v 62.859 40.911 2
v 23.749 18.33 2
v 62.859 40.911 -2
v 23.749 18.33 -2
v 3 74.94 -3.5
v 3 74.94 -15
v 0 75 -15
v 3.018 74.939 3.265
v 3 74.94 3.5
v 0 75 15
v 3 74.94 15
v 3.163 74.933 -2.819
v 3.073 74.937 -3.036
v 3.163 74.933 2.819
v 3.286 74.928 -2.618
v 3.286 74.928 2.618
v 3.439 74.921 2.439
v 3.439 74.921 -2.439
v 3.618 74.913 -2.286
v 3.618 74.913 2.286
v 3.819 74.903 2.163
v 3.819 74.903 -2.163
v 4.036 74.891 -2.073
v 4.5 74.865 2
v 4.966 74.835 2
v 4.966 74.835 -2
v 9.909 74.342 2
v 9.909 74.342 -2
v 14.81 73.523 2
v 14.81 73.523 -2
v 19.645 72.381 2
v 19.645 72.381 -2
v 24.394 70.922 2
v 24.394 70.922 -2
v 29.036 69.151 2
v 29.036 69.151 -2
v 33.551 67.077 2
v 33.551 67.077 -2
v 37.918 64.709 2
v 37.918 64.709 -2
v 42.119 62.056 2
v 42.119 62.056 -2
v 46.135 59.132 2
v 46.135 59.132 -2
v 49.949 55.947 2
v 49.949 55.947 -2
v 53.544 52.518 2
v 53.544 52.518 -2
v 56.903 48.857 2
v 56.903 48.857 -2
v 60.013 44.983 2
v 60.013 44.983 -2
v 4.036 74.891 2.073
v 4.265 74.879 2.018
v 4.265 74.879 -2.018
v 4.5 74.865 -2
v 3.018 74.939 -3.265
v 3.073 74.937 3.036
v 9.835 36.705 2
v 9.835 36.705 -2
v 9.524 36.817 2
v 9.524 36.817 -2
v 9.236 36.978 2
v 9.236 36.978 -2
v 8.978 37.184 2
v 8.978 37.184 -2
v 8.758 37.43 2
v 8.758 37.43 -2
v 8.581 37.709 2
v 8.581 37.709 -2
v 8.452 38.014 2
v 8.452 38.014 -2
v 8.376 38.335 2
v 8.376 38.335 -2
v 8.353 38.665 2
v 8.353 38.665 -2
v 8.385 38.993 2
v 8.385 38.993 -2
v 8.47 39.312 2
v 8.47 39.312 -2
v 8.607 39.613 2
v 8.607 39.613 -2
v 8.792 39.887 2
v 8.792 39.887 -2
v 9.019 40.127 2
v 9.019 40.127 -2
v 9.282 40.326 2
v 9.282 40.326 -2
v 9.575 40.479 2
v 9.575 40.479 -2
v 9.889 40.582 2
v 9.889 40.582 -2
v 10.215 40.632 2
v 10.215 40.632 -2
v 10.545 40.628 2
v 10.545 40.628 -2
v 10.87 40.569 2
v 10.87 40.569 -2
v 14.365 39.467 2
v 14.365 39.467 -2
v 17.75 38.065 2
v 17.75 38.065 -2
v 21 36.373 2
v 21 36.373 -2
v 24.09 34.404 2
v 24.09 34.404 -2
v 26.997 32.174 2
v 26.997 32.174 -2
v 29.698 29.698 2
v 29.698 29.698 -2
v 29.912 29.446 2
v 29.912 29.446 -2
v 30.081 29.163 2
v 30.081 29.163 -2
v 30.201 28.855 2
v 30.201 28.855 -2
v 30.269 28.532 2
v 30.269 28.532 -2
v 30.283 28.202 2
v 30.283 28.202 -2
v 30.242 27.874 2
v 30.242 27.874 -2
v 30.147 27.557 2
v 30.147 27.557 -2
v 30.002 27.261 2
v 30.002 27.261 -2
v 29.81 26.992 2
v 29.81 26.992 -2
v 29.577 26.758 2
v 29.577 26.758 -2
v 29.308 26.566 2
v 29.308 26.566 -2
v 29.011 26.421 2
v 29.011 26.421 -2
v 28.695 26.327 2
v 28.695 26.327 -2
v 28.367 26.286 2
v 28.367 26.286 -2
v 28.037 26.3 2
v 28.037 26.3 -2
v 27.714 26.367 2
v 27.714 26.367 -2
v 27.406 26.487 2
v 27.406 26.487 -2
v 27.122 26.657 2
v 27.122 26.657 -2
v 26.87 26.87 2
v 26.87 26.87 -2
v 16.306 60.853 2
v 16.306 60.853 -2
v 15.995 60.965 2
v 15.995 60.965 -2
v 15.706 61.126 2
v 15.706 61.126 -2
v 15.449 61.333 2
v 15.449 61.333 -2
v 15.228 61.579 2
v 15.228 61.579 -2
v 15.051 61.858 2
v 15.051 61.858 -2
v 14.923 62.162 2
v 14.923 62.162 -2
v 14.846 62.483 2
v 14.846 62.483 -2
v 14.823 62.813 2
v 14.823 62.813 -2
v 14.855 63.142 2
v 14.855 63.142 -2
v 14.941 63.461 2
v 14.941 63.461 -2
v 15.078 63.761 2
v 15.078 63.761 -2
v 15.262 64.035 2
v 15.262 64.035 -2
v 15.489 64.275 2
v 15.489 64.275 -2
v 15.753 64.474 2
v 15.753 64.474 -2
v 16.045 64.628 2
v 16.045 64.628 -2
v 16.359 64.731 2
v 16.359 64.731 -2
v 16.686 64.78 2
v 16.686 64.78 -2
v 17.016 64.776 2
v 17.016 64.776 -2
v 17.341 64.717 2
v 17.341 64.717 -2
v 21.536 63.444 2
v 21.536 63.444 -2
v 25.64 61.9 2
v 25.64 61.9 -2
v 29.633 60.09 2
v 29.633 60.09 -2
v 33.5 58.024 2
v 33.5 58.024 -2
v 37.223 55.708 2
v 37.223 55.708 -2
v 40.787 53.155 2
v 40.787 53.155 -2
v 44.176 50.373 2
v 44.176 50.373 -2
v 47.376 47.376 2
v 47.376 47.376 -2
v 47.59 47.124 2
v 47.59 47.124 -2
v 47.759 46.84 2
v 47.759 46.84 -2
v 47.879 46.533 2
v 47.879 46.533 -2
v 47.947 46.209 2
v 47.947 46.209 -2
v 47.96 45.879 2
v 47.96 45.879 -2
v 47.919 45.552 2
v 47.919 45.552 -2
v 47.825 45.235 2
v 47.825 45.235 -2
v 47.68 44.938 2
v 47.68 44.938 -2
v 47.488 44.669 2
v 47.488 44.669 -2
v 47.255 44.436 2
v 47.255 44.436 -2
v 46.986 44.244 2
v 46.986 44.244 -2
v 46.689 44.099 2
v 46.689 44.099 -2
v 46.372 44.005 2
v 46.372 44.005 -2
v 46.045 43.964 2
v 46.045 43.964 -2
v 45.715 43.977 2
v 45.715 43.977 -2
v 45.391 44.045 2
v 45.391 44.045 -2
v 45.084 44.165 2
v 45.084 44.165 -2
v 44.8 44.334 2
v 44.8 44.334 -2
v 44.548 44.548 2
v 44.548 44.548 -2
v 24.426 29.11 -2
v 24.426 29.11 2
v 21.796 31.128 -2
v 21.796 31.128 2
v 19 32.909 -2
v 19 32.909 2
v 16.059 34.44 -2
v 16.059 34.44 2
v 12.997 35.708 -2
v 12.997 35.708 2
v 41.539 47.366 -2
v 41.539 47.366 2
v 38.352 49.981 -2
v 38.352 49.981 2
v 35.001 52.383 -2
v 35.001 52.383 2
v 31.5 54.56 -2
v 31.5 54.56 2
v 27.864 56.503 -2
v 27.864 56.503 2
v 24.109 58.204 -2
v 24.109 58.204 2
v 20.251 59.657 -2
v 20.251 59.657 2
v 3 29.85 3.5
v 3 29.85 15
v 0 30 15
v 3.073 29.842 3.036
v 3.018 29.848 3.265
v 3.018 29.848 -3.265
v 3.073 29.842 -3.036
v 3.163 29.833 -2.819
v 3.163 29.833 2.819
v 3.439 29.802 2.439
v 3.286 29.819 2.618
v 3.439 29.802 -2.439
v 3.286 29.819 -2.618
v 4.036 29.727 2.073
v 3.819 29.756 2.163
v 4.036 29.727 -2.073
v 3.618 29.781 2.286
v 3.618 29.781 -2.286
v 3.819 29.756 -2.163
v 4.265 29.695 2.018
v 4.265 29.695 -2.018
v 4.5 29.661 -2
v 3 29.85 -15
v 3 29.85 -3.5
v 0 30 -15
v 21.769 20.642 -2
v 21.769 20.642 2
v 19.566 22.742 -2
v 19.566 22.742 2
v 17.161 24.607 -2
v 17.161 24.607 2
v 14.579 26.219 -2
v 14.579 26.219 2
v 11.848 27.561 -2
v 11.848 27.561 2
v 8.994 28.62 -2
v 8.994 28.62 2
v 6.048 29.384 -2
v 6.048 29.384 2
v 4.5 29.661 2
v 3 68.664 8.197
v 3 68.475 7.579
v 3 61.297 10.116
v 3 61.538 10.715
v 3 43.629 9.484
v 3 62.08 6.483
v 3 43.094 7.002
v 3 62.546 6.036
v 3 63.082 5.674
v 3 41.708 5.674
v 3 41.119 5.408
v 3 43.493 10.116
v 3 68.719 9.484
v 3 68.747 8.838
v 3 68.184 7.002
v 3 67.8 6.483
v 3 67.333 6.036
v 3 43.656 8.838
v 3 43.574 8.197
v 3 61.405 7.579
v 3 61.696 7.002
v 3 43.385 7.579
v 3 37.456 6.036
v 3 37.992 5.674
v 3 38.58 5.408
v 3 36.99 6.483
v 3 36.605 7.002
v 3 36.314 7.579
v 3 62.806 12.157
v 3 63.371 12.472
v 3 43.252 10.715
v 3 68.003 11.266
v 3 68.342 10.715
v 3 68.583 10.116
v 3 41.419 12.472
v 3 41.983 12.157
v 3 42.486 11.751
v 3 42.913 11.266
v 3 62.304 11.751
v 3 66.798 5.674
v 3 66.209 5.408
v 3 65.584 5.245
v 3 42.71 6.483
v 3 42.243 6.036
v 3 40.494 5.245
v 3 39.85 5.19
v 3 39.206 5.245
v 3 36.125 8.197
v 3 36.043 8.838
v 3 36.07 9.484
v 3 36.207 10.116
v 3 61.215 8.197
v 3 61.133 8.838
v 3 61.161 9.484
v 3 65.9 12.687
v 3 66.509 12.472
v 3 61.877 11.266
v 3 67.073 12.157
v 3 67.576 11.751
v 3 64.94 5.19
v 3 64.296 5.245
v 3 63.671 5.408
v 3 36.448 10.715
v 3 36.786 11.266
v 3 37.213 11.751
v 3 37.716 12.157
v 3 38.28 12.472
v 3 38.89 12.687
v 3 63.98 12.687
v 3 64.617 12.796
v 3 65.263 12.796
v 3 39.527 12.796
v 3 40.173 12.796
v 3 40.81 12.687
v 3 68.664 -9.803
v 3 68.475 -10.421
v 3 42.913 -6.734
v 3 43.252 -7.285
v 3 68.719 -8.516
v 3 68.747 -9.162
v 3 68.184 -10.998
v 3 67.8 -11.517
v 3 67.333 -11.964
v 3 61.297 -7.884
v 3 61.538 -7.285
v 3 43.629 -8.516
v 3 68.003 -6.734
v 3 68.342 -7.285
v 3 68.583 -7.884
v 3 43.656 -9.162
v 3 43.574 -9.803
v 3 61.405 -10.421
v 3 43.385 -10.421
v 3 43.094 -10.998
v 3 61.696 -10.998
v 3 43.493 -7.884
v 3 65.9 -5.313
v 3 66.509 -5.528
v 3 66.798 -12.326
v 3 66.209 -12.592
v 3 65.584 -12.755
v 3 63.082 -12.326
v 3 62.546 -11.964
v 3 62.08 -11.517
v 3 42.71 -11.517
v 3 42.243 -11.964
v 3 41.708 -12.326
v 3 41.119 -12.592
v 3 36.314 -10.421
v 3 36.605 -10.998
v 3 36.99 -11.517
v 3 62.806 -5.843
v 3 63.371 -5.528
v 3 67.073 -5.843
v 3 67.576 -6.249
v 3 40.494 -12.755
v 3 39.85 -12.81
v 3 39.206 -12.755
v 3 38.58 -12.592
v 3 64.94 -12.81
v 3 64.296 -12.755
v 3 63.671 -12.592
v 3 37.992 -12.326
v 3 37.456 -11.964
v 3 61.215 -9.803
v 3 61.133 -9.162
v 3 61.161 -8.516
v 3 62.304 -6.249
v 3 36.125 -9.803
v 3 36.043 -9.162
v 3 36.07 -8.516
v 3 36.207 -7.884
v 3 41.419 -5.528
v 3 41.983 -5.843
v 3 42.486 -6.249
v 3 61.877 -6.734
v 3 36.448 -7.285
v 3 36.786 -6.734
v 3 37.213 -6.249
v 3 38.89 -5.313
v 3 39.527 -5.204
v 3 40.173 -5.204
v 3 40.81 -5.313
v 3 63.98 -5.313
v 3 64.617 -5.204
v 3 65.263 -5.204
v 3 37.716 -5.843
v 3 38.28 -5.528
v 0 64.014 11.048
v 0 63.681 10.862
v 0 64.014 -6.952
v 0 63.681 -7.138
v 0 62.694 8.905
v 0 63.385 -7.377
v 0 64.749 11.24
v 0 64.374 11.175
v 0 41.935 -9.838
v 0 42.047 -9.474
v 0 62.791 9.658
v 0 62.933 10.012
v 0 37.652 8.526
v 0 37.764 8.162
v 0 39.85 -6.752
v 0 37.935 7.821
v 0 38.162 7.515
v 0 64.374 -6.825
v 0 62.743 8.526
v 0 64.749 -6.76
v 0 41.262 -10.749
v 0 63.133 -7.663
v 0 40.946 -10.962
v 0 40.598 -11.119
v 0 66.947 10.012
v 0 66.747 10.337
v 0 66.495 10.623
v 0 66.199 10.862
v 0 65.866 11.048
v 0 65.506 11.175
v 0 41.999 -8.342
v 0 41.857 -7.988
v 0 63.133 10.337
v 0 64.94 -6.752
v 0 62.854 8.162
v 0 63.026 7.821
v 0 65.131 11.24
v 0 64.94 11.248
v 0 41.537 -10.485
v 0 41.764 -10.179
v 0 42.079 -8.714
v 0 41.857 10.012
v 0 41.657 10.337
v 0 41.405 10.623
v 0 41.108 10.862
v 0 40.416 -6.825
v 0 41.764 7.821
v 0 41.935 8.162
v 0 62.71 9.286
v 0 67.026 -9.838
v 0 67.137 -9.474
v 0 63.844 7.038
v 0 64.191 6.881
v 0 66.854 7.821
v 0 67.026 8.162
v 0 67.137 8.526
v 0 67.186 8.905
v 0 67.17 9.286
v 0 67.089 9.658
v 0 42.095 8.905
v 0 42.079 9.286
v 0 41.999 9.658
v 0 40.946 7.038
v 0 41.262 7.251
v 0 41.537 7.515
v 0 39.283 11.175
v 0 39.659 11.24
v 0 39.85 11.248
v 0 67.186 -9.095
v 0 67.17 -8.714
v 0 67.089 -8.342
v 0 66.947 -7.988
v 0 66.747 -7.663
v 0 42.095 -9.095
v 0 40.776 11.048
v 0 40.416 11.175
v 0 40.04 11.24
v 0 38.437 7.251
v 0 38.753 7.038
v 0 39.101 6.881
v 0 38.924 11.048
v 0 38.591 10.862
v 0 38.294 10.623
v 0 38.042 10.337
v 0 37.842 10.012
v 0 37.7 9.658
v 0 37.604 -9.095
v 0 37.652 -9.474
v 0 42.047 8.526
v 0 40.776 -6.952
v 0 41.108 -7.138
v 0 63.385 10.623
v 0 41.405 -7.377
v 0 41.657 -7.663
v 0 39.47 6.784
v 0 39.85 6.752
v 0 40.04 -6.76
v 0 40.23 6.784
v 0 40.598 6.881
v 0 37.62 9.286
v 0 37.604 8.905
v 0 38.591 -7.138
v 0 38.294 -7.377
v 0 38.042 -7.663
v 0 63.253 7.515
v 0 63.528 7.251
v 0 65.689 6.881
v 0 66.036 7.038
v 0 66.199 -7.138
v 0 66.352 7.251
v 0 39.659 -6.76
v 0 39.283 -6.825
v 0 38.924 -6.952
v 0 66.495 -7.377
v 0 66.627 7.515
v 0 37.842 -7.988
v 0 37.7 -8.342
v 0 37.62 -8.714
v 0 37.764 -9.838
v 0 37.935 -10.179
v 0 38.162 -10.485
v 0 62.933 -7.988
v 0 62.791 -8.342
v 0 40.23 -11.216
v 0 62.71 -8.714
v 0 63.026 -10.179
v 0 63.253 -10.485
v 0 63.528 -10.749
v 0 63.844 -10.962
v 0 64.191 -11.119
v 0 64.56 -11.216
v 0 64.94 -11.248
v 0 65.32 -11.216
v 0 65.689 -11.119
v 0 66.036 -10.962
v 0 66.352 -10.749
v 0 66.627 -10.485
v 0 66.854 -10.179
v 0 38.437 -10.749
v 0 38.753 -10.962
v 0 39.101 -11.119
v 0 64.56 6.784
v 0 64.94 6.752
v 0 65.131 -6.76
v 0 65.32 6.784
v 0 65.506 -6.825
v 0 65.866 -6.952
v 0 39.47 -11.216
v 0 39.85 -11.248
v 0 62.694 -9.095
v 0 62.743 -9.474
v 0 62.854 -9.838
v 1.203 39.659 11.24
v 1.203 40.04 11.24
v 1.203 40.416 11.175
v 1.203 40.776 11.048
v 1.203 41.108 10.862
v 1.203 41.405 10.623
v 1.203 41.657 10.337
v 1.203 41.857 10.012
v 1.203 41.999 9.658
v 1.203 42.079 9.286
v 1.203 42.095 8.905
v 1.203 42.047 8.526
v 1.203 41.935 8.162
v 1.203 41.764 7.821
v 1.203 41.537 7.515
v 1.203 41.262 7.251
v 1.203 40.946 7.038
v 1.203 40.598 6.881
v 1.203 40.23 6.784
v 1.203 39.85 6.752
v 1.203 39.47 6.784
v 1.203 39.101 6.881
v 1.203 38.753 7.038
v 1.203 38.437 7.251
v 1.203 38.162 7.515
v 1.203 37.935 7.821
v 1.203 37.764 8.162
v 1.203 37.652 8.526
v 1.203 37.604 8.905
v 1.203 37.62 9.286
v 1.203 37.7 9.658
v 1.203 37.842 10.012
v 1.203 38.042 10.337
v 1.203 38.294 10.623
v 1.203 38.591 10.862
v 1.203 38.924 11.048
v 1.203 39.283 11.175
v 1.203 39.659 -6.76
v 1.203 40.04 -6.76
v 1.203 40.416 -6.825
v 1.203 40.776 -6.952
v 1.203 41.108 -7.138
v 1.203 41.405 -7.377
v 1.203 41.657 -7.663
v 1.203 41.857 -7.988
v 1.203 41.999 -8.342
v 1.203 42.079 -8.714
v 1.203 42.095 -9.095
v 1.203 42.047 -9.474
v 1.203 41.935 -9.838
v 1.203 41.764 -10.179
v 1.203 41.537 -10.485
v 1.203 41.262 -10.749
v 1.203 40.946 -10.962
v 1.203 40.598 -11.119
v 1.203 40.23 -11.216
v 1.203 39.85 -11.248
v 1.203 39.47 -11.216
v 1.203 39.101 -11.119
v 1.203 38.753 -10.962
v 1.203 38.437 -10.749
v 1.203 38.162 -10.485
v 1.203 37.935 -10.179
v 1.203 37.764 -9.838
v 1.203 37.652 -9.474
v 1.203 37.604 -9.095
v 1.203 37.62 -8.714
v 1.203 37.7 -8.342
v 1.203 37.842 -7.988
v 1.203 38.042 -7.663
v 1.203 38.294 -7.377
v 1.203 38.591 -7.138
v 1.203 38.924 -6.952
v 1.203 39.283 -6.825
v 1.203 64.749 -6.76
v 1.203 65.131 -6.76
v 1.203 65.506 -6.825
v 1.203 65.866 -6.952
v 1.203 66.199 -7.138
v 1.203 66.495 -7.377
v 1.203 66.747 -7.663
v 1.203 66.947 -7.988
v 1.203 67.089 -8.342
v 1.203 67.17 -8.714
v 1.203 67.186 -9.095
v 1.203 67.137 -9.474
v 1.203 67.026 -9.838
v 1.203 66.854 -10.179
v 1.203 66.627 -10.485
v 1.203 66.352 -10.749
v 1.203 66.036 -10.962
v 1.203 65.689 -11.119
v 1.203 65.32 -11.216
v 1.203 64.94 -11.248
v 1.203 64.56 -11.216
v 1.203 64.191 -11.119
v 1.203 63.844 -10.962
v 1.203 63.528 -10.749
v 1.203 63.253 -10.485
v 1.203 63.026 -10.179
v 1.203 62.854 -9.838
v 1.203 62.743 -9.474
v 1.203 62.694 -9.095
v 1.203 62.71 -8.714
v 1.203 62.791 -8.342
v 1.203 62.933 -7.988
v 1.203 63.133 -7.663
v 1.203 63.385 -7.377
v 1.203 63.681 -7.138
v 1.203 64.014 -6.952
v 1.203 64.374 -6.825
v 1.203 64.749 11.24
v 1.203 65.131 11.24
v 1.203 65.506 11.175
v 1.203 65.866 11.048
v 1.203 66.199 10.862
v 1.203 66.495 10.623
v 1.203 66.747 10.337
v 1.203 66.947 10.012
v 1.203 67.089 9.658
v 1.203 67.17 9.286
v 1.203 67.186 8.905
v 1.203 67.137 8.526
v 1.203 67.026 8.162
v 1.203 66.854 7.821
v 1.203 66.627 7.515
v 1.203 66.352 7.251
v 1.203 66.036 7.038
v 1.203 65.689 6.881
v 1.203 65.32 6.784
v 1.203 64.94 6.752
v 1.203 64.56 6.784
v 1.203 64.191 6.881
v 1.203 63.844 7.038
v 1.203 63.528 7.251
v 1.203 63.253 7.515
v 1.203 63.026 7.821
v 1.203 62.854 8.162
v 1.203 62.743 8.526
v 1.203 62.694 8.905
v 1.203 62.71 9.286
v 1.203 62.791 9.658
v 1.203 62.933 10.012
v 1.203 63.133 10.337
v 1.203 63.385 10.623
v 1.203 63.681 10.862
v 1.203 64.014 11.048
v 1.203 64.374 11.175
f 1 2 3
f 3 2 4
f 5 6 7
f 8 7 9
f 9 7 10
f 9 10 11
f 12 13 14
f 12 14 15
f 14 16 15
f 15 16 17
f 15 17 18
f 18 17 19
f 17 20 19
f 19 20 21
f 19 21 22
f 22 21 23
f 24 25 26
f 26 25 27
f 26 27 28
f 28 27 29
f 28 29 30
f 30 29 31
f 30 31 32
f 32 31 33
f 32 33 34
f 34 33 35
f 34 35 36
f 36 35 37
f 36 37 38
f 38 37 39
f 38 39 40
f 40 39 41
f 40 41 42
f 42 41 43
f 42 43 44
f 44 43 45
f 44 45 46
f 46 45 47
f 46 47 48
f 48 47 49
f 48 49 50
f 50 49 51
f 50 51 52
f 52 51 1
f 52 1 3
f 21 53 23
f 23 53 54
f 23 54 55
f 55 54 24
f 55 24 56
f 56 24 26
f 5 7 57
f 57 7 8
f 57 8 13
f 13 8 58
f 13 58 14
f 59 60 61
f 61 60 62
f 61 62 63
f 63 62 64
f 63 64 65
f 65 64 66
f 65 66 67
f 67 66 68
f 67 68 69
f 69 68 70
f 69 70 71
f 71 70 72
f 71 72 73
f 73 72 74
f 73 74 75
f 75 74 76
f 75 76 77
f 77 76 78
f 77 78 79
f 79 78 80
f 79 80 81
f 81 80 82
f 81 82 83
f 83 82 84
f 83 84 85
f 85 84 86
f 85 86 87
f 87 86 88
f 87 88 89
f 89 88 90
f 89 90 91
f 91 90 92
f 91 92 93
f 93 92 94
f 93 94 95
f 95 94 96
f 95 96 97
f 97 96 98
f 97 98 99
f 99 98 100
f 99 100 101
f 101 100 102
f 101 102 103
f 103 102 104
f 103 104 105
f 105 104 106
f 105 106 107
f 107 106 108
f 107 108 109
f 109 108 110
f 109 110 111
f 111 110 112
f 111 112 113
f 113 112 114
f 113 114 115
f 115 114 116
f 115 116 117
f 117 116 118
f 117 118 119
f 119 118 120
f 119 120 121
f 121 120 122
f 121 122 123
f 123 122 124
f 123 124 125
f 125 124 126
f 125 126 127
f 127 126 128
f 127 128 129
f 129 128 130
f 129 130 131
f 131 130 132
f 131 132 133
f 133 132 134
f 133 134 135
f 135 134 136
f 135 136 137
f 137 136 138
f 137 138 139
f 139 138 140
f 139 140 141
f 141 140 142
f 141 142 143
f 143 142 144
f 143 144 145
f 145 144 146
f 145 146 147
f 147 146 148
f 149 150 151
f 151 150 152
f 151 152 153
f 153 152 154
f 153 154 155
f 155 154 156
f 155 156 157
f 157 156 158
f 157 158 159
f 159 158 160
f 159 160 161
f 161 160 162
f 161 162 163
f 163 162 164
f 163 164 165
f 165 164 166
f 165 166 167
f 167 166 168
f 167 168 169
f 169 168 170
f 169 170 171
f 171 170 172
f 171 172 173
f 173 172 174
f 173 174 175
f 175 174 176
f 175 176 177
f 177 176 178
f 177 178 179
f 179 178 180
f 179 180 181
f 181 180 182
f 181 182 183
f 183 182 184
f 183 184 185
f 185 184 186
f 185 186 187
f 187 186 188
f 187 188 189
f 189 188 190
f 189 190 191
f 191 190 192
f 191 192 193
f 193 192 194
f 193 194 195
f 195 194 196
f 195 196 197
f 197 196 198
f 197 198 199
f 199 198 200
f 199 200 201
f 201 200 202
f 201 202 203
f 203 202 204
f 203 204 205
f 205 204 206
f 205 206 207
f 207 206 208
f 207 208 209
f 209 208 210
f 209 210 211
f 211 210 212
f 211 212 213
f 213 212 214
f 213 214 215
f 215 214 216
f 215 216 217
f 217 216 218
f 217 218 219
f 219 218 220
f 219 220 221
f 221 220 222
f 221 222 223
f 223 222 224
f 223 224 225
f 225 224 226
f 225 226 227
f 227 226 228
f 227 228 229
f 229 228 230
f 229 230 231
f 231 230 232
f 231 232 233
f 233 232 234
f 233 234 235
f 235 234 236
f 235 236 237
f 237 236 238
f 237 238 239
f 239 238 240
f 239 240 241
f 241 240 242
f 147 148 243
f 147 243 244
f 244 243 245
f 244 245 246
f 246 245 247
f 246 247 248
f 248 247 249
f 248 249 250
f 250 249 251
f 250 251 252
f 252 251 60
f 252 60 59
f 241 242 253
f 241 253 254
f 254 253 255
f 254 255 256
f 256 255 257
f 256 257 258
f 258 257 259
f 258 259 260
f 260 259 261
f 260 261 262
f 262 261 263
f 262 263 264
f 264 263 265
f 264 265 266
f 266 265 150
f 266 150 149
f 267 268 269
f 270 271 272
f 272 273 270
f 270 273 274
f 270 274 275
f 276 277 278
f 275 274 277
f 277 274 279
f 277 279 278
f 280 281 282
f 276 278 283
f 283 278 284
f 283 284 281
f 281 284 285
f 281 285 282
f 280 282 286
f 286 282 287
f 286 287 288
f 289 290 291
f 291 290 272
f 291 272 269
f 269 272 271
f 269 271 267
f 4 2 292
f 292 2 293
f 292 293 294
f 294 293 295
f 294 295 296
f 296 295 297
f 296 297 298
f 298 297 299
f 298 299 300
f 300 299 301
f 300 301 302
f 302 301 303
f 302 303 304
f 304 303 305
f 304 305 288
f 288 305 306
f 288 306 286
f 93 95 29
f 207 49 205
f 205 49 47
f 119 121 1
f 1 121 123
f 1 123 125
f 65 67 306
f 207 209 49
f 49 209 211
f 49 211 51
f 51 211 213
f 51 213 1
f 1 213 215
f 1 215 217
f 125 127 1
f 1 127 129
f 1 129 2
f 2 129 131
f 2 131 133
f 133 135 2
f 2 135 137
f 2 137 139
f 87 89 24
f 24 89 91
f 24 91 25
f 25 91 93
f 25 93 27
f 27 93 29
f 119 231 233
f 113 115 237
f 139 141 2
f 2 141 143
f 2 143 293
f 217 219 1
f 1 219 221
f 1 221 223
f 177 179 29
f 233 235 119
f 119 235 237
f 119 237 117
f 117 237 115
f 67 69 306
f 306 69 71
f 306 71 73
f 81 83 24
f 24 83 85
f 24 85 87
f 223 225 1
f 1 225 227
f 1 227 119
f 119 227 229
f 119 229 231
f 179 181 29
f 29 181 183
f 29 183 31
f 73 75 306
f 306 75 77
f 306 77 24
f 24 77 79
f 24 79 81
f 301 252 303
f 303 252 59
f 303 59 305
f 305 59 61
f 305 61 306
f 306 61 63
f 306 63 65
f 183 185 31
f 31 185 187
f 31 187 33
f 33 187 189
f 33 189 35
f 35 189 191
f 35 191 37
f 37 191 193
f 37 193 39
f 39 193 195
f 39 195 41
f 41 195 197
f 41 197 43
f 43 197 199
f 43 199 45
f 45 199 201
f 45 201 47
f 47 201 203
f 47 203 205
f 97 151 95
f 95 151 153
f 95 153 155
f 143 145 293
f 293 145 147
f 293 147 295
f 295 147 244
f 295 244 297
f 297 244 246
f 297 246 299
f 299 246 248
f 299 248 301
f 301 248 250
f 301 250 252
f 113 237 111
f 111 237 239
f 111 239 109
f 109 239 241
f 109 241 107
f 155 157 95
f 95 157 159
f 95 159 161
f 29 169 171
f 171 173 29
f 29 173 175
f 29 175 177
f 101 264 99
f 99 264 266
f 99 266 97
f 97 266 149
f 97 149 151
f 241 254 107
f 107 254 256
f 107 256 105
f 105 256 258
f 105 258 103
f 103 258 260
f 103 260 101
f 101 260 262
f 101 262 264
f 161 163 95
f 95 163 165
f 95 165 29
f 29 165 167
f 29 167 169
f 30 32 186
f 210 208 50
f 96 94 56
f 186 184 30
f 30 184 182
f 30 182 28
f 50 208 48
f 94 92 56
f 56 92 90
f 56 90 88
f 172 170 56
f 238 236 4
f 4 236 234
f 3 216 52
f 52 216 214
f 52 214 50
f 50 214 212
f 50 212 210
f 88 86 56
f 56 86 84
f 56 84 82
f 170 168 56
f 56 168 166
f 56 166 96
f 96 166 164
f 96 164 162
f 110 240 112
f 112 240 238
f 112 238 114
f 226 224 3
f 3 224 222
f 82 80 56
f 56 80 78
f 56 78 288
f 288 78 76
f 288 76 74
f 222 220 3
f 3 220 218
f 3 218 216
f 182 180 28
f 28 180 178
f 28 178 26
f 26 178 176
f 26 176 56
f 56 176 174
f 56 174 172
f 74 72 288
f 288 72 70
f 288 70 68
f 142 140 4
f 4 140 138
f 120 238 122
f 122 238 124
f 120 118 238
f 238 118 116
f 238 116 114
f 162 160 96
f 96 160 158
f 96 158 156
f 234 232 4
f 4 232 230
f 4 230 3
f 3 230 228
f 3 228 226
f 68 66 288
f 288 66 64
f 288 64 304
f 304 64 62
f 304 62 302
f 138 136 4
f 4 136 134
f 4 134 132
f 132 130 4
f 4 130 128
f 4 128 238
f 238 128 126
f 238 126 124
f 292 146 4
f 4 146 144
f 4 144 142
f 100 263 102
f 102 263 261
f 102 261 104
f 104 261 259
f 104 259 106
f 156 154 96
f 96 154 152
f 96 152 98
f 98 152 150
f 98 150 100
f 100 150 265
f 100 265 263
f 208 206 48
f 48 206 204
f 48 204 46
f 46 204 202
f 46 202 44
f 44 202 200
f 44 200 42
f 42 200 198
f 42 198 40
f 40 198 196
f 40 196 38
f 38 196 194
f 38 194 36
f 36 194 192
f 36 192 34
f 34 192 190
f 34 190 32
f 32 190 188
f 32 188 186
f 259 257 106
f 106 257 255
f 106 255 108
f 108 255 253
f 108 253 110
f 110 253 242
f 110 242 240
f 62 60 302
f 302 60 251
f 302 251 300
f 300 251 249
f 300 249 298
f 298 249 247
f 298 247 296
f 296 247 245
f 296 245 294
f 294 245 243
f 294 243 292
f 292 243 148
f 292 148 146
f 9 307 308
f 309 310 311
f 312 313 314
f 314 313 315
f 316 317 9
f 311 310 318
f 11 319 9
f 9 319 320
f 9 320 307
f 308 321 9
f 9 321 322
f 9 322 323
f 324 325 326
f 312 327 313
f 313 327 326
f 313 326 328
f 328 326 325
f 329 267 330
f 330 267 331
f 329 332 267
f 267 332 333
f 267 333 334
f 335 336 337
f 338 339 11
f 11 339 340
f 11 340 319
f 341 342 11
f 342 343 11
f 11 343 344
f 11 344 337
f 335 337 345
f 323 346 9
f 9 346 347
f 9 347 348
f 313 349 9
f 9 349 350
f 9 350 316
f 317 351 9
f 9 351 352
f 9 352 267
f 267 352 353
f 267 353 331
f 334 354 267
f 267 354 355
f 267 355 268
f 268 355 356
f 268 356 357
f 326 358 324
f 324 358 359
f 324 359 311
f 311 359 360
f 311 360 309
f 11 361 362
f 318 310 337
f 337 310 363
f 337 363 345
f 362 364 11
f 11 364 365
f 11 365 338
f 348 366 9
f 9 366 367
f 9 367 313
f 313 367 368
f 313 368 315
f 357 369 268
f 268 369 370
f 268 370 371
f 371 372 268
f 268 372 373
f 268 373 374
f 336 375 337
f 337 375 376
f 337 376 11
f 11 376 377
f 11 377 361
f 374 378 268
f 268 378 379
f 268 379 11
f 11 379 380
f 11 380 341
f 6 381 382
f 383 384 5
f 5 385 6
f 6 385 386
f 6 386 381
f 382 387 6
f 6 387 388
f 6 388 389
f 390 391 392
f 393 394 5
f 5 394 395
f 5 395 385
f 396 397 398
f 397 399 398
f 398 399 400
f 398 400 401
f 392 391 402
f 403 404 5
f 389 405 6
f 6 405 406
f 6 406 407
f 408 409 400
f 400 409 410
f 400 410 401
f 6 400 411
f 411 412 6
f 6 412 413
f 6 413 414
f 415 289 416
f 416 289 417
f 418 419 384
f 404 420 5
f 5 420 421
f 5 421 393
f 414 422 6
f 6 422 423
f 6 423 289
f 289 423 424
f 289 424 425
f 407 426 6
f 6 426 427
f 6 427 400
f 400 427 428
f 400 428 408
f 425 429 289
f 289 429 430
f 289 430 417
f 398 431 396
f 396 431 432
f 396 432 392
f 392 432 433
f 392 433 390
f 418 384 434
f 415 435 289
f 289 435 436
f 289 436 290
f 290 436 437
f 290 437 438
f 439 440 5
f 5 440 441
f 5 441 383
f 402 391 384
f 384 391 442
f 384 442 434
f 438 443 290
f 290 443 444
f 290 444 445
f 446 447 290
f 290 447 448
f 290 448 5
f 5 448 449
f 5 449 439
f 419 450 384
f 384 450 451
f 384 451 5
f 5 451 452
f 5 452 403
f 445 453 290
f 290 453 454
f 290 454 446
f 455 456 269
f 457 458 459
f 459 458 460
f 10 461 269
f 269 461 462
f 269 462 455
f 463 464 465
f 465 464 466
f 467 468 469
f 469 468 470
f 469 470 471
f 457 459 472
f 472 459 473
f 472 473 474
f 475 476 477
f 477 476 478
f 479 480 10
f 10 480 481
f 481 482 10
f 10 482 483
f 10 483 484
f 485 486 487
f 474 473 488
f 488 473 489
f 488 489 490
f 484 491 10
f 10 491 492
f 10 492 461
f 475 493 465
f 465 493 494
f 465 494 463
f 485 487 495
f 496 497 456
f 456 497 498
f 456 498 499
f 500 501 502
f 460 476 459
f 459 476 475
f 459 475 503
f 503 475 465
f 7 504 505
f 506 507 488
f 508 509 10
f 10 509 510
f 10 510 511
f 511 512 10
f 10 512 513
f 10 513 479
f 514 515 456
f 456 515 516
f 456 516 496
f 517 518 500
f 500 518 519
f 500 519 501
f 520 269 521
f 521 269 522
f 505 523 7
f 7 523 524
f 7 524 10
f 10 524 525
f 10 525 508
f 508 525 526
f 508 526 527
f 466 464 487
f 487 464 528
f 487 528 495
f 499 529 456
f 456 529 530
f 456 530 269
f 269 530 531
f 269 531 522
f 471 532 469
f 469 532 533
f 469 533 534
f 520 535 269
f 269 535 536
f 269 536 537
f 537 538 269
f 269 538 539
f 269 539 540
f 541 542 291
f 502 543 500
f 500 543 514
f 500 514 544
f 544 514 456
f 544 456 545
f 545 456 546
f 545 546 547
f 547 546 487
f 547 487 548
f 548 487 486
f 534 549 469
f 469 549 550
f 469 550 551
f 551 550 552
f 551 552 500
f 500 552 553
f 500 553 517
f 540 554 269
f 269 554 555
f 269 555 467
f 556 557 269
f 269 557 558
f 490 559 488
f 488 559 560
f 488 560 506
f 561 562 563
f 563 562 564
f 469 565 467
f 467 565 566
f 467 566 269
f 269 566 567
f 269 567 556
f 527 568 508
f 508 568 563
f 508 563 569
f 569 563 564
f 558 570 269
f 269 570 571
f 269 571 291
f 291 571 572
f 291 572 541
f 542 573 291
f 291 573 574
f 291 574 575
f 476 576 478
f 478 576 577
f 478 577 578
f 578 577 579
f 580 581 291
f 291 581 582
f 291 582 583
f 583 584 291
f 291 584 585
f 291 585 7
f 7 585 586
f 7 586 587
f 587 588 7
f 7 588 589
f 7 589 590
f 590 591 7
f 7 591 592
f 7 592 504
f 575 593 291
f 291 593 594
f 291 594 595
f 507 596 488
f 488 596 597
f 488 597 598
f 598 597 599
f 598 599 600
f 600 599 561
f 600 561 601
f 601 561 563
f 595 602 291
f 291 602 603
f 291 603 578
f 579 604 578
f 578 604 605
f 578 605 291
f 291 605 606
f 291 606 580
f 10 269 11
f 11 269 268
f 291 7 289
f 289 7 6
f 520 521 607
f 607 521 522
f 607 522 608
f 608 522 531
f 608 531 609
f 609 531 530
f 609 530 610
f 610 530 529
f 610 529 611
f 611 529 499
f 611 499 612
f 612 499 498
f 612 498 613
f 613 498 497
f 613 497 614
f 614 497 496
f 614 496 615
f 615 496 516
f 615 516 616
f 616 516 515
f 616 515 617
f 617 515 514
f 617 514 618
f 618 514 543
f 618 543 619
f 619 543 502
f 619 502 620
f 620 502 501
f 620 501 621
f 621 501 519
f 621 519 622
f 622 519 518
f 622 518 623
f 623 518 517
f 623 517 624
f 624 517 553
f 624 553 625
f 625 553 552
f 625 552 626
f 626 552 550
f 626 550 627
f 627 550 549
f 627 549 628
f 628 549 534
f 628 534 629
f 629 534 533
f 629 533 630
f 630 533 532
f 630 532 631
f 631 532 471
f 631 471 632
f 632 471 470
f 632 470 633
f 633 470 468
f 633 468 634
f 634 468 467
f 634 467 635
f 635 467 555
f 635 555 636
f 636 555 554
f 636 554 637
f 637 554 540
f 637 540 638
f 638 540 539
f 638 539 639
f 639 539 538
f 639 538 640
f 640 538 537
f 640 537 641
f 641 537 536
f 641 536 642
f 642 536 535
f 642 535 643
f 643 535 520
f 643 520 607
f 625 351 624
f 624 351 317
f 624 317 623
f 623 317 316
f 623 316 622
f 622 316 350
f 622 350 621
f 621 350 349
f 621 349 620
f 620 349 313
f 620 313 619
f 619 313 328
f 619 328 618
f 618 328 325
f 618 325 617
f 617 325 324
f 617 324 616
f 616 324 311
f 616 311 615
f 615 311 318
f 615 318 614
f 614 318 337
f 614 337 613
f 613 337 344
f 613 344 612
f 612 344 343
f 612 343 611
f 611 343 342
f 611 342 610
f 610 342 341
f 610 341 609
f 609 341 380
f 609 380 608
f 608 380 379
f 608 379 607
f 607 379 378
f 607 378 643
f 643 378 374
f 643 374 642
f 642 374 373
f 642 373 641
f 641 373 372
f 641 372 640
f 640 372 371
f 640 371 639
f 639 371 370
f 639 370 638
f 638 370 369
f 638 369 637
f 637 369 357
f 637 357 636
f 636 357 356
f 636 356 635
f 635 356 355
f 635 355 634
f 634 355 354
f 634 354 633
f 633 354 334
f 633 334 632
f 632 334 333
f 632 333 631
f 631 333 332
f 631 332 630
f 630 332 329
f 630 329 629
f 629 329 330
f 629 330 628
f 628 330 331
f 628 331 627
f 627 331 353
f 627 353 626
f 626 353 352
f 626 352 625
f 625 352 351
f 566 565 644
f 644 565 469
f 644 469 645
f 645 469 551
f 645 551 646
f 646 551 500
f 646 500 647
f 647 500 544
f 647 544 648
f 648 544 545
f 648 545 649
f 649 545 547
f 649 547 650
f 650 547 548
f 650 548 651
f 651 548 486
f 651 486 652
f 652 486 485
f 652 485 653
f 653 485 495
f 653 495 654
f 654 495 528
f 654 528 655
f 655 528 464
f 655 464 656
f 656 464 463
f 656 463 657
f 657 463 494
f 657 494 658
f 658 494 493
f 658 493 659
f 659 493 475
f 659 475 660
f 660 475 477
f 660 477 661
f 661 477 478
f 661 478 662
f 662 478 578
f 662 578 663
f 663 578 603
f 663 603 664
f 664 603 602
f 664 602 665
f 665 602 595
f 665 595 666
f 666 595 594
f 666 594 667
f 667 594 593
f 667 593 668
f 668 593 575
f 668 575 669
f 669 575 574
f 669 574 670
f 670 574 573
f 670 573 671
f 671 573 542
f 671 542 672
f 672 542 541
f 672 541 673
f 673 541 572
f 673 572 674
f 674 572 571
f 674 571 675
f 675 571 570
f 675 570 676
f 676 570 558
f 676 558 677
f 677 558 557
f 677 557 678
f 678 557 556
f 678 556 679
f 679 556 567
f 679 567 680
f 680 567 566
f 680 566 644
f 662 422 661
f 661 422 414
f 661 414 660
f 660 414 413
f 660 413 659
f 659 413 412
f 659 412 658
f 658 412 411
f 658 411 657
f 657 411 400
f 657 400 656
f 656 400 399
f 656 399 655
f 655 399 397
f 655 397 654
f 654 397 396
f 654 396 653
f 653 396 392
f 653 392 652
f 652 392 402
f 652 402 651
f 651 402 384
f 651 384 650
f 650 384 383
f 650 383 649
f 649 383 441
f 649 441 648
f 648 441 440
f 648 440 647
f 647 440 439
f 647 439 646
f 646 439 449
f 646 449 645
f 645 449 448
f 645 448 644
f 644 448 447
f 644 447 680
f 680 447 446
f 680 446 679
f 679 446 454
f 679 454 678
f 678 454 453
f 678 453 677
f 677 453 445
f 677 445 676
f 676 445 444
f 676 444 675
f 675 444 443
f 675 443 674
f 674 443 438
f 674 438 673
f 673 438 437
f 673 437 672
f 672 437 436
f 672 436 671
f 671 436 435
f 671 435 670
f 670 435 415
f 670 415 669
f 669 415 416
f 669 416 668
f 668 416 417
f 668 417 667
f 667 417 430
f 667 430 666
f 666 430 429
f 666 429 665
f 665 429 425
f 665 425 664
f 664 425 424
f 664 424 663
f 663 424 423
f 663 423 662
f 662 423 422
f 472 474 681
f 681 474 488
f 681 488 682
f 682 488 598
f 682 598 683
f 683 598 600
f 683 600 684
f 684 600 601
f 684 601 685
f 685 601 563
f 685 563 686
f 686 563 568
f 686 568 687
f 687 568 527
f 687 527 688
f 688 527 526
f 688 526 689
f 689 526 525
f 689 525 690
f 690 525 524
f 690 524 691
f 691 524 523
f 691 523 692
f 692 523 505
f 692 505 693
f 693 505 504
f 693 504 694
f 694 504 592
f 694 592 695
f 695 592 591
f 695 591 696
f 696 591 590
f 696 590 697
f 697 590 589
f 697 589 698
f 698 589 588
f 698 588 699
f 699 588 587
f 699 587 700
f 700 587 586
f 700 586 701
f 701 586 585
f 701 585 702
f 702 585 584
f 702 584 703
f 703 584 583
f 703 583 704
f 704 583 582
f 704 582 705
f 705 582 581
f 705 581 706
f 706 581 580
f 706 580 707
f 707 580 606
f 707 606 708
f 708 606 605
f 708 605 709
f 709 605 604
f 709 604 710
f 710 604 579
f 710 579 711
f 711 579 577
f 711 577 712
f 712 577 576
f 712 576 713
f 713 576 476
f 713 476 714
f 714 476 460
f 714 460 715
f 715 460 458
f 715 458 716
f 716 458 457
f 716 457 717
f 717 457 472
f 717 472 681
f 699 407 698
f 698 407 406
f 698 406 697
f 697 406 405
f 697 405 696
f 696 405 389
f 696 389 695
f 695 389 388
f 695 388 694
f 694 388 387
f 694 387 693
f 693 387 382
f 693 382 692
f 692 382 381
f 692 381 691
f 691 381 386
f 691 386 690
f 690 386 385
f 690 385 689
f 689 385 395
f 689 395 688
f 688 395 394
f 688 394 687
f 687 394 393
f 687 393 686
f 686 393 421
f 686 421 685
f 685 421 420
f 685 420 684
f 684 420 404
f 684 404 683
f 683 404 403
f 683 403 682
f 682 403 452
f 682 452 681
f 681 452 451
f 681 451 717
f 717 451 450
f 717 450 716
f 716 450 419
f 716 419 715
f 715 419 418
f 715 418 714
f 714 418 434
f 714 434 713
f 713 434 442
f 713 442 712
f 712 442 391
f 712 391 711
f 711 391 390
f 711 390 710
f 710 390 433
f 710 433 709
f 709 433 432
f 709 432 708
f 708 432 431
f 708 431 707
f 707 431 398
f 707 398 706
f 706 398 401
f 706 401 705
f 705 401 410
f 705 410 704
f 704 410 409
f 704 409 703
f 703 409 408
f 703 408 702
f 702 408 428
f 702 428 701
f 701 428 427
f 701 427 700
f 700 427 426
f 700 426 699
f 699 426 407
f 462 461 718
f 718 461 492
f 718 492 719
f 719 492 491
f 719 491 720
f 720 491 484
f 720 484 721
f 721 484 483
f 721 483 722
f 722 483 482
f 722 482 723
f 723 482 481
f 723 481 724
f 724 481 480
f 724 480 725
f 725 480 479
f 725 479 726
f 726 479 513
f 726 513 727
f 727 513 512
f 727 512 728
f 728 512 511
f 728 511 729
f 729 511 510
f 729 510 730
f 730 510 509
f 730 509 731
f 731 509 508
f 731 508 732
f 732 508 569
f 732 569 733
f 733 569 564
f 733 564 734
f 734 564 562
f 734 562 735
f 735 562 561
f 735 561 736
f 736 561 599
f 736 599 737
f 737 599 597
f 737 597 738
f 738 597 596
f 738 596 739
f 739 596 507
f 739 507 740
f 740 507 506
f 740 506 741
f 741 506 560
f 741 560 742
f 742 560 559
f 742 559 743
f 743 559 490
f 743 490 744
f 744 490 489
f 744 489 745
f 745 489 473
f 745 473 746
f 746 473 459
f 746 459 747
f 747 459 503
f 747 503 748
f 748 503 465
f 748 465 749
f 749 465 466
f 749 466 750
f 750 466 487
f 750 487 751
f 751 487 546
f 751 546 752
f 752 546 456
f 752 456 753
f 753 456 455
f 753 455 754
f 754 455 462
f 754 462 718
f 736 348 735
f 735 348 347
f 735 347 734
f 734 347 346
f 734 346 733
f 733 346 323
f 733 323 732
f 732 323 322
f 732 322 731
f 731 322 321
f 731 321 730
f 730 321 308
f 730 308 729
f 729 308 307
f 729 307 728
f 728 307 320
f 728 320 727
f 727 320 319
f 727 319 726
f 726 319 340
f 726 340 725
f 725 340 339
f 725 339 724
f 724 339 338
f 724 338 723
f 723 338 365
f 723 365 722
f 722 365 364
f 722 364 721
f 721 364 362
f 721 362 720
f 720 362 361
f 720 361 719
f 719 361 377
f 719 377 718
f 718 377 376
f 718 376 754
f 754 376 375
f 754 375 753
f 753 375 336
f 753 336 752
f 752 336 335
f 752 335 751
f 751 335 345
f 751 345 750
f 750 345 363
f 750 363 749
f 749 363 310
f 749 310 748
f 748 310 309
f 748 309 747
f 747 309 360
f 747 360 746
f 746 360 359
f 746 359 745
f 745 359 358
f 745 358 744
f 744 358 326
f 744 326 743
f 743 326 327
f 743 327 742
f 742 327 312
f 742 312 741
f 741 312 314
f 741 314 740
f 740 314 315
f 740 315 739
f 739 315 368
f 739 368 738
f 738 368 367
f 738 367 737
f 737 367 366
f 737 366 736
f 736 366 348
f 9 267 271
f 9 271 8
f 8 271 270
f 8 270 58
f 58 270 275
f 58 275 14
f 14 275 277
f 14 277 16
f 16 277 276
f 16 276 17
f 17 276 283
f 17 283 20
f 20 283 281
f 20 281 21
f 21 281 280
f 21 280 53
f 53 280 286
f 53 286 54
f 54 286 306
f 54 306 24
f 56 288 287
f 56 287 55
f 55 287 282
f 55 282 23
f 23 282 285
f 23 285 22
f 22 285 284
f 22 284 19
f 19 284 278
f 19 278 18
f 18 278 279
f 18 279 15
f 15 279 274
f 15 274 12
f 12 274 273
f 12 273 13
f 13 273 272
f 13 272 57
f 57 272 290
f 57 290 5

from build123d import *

# Parameters (mm, degrees)
BOSS_EXTRUDE1_DEPTH                               = 2
BOSS_EXTRUDE2_DEPTH                               = 15
CSK_FOR_8_FLAT_HEAD_SOCKET_CAP_SCREW1_D           = 4.4958
CSK_FOR_8_FLAT_HEAD_SOCKET_CAP_SCREW1_DEPTH       = 15
CSK_FOR_8_FLAT_HEAD_SOCKET_CAP_SCREW1_CSINK_D     = 7.62
CSK_FOR_8_FLAT_HEAD_SOCKET_CAP_SCREW1_CSINK_ANGLE = 82
CSK_FOR_8_FLAT_HEAD_SOCKET_CAP_SCREW1_TIP         = 0.7087601475210669
FILLET1_R                                         = 1.5


with BuildPart() as part:
    # Sketch1 → Boss-Extrude1 (new, symmetric)
    with BuildSketch(Plane.XY):
        with BuildLine():
            ThreePointArc((3.0000000000000036, 29.84962311319859), (14.561896892531825, 26.228823055777227), (23.748786379167363, 18.330170362456368))
            Line((23.748786379167367, 18.33017036245637), (62.85946345754006, 40.910730301843614))
            ThreePointArc((62.859463457540045, 40.910730301843614), (37.065679841305055, 65.20073142152523), (2.9999999999999964, 74.93997598078077))
            Line((2.999999999999999, 74.93997598078074), (3, 29.849623113198593))
        make_face()
        with BuildLine():
            ThreePointArc((10.870399894306182, 40.568884704140785), (21.000000000000167, 36.373066958946325), (29.698484809835048, 29.698484809834948))
            ThreePointArc((29.698484809835044, 29.698484809834945), (29.69848480983504, 26.870057685088753), (26.87005768508885, 26.870057685088756))
            ThreePointArc((26.870057685088845, 26.87005768508876), (19.000000000000156, 32.90896534380858), (9.835123713896072, 36.70518139898452))
            ThreePointArc((9.835123713896072, 36.70518139898452), (8.420910151522994, 39.15467114176771), (10.870399894306184, 40.568884704140785))
        make_face(mode=Mode.SUBTRACT)
        with BuildLine():
            ThreePointArc((17.340876021869384, 64.71703036136746), (33.500000000000284, 58.023702053557244), (47.37615433949878, 47.37615433949861))
            ThreePointArc((47.37615433949877, 47.3761543394986), (47.376154339498754, 44.547727214752406), (44.54772721475256, 44.54772721475241))
            ThreePointArc((44.54772721475258, 44.54772721475243), (31.50000000000025, 54.55960043841949), (16.30559984145927, 60.85332705621119))
            ThreePointArc((16.30559984145927, 60.85332705621118), (14.891386279086177, 63.302816798994385), (17.340876021869388, 64.71703036136746))
        make_face(mode=Mode.SUBTRACT)
    extrude(amount=BOSS_EXTRUDE1_DEPTH, both=True)

    # Sketch1<3> → Boss-Extrude2 (add, symmetric)
    with BuildSketch(Plane.XY):
        with BuildLine():
            ThreePointArc((1.78e-15, 30), (1.501883251794565, 29.962382193309978), (3.0000000000000036, 29.84962311319859))
            Line((3, 29.849623113198593), (2.999999999999999, 74.93997598078074))
            ThreePointArc((2.9999999999999964, 74.93997598078077), (1.5003002101982155, 74.98499249369355), (-1.066e-14, 75))
            Line((0, 75), (0, 30))
        make_face()
    extrude(amount=BOSS_EXTRUDE2_DEPTH, both=True)

    # CSK for #8 Flat Head Socket Cap Screw1
    with Locations(Plane(origin=(3.0000000000000004, 6e-17, 0), x_dir=(0, 0, -1), z_dir=(1, 2e-17, 0))):
        with Locations((-9, 64.939975981), (9, 64.939975981), (9, 39.849623113), (-9, 39.849623113)):
            CounterSinkHole(CSK_FOR_8_FLAT_HEAD_SOCKET_CAP_SCREW1_D / 2, CSK_FOR_8_FLAT_HEAD_SOCKET_CAP_SCREW1_CSINK_D / 2, depth=CSK_FOR_8_FLAT_HEAD_SOCKET_CAP_SCREW1_DEPTH, counter_sink_angle=CSK_FOR_8_FLAT_HEAD_SOCKET_CAP_SCREW1_CSINK_ANGLE)
            with Locations((0, 0, -(CSK_FOR_8_FLAT_HEAD_SOCKET_CAP_SCREW1_DEPTH + CSK_FOR_8_FLAT_HEAD_SOCKET_CAP_SCREW1_TIP / 2))):  # 145° drill point
                Cone(0, CSK_FOR_8_FLAT_HEAD_SOCKET_CAP_SCREW1_D / 2, CSK_FOR_8_FLAT_HEAD_SOCKET_CAP_SCREW1_TIP, mode=Mode.SUBTRACT)

    # Fillet1
    fillet1_edges = [part.edges().sort_by_distance(p)[0] for p in [
        (2.9999999999999996, 52.39479954698967, -2),
        (2.9999999999999996, 52.39479954698967, 2),
    ]]
    fillet(fillet1_edges, radius=FILLET1_R)


solid = part.part
